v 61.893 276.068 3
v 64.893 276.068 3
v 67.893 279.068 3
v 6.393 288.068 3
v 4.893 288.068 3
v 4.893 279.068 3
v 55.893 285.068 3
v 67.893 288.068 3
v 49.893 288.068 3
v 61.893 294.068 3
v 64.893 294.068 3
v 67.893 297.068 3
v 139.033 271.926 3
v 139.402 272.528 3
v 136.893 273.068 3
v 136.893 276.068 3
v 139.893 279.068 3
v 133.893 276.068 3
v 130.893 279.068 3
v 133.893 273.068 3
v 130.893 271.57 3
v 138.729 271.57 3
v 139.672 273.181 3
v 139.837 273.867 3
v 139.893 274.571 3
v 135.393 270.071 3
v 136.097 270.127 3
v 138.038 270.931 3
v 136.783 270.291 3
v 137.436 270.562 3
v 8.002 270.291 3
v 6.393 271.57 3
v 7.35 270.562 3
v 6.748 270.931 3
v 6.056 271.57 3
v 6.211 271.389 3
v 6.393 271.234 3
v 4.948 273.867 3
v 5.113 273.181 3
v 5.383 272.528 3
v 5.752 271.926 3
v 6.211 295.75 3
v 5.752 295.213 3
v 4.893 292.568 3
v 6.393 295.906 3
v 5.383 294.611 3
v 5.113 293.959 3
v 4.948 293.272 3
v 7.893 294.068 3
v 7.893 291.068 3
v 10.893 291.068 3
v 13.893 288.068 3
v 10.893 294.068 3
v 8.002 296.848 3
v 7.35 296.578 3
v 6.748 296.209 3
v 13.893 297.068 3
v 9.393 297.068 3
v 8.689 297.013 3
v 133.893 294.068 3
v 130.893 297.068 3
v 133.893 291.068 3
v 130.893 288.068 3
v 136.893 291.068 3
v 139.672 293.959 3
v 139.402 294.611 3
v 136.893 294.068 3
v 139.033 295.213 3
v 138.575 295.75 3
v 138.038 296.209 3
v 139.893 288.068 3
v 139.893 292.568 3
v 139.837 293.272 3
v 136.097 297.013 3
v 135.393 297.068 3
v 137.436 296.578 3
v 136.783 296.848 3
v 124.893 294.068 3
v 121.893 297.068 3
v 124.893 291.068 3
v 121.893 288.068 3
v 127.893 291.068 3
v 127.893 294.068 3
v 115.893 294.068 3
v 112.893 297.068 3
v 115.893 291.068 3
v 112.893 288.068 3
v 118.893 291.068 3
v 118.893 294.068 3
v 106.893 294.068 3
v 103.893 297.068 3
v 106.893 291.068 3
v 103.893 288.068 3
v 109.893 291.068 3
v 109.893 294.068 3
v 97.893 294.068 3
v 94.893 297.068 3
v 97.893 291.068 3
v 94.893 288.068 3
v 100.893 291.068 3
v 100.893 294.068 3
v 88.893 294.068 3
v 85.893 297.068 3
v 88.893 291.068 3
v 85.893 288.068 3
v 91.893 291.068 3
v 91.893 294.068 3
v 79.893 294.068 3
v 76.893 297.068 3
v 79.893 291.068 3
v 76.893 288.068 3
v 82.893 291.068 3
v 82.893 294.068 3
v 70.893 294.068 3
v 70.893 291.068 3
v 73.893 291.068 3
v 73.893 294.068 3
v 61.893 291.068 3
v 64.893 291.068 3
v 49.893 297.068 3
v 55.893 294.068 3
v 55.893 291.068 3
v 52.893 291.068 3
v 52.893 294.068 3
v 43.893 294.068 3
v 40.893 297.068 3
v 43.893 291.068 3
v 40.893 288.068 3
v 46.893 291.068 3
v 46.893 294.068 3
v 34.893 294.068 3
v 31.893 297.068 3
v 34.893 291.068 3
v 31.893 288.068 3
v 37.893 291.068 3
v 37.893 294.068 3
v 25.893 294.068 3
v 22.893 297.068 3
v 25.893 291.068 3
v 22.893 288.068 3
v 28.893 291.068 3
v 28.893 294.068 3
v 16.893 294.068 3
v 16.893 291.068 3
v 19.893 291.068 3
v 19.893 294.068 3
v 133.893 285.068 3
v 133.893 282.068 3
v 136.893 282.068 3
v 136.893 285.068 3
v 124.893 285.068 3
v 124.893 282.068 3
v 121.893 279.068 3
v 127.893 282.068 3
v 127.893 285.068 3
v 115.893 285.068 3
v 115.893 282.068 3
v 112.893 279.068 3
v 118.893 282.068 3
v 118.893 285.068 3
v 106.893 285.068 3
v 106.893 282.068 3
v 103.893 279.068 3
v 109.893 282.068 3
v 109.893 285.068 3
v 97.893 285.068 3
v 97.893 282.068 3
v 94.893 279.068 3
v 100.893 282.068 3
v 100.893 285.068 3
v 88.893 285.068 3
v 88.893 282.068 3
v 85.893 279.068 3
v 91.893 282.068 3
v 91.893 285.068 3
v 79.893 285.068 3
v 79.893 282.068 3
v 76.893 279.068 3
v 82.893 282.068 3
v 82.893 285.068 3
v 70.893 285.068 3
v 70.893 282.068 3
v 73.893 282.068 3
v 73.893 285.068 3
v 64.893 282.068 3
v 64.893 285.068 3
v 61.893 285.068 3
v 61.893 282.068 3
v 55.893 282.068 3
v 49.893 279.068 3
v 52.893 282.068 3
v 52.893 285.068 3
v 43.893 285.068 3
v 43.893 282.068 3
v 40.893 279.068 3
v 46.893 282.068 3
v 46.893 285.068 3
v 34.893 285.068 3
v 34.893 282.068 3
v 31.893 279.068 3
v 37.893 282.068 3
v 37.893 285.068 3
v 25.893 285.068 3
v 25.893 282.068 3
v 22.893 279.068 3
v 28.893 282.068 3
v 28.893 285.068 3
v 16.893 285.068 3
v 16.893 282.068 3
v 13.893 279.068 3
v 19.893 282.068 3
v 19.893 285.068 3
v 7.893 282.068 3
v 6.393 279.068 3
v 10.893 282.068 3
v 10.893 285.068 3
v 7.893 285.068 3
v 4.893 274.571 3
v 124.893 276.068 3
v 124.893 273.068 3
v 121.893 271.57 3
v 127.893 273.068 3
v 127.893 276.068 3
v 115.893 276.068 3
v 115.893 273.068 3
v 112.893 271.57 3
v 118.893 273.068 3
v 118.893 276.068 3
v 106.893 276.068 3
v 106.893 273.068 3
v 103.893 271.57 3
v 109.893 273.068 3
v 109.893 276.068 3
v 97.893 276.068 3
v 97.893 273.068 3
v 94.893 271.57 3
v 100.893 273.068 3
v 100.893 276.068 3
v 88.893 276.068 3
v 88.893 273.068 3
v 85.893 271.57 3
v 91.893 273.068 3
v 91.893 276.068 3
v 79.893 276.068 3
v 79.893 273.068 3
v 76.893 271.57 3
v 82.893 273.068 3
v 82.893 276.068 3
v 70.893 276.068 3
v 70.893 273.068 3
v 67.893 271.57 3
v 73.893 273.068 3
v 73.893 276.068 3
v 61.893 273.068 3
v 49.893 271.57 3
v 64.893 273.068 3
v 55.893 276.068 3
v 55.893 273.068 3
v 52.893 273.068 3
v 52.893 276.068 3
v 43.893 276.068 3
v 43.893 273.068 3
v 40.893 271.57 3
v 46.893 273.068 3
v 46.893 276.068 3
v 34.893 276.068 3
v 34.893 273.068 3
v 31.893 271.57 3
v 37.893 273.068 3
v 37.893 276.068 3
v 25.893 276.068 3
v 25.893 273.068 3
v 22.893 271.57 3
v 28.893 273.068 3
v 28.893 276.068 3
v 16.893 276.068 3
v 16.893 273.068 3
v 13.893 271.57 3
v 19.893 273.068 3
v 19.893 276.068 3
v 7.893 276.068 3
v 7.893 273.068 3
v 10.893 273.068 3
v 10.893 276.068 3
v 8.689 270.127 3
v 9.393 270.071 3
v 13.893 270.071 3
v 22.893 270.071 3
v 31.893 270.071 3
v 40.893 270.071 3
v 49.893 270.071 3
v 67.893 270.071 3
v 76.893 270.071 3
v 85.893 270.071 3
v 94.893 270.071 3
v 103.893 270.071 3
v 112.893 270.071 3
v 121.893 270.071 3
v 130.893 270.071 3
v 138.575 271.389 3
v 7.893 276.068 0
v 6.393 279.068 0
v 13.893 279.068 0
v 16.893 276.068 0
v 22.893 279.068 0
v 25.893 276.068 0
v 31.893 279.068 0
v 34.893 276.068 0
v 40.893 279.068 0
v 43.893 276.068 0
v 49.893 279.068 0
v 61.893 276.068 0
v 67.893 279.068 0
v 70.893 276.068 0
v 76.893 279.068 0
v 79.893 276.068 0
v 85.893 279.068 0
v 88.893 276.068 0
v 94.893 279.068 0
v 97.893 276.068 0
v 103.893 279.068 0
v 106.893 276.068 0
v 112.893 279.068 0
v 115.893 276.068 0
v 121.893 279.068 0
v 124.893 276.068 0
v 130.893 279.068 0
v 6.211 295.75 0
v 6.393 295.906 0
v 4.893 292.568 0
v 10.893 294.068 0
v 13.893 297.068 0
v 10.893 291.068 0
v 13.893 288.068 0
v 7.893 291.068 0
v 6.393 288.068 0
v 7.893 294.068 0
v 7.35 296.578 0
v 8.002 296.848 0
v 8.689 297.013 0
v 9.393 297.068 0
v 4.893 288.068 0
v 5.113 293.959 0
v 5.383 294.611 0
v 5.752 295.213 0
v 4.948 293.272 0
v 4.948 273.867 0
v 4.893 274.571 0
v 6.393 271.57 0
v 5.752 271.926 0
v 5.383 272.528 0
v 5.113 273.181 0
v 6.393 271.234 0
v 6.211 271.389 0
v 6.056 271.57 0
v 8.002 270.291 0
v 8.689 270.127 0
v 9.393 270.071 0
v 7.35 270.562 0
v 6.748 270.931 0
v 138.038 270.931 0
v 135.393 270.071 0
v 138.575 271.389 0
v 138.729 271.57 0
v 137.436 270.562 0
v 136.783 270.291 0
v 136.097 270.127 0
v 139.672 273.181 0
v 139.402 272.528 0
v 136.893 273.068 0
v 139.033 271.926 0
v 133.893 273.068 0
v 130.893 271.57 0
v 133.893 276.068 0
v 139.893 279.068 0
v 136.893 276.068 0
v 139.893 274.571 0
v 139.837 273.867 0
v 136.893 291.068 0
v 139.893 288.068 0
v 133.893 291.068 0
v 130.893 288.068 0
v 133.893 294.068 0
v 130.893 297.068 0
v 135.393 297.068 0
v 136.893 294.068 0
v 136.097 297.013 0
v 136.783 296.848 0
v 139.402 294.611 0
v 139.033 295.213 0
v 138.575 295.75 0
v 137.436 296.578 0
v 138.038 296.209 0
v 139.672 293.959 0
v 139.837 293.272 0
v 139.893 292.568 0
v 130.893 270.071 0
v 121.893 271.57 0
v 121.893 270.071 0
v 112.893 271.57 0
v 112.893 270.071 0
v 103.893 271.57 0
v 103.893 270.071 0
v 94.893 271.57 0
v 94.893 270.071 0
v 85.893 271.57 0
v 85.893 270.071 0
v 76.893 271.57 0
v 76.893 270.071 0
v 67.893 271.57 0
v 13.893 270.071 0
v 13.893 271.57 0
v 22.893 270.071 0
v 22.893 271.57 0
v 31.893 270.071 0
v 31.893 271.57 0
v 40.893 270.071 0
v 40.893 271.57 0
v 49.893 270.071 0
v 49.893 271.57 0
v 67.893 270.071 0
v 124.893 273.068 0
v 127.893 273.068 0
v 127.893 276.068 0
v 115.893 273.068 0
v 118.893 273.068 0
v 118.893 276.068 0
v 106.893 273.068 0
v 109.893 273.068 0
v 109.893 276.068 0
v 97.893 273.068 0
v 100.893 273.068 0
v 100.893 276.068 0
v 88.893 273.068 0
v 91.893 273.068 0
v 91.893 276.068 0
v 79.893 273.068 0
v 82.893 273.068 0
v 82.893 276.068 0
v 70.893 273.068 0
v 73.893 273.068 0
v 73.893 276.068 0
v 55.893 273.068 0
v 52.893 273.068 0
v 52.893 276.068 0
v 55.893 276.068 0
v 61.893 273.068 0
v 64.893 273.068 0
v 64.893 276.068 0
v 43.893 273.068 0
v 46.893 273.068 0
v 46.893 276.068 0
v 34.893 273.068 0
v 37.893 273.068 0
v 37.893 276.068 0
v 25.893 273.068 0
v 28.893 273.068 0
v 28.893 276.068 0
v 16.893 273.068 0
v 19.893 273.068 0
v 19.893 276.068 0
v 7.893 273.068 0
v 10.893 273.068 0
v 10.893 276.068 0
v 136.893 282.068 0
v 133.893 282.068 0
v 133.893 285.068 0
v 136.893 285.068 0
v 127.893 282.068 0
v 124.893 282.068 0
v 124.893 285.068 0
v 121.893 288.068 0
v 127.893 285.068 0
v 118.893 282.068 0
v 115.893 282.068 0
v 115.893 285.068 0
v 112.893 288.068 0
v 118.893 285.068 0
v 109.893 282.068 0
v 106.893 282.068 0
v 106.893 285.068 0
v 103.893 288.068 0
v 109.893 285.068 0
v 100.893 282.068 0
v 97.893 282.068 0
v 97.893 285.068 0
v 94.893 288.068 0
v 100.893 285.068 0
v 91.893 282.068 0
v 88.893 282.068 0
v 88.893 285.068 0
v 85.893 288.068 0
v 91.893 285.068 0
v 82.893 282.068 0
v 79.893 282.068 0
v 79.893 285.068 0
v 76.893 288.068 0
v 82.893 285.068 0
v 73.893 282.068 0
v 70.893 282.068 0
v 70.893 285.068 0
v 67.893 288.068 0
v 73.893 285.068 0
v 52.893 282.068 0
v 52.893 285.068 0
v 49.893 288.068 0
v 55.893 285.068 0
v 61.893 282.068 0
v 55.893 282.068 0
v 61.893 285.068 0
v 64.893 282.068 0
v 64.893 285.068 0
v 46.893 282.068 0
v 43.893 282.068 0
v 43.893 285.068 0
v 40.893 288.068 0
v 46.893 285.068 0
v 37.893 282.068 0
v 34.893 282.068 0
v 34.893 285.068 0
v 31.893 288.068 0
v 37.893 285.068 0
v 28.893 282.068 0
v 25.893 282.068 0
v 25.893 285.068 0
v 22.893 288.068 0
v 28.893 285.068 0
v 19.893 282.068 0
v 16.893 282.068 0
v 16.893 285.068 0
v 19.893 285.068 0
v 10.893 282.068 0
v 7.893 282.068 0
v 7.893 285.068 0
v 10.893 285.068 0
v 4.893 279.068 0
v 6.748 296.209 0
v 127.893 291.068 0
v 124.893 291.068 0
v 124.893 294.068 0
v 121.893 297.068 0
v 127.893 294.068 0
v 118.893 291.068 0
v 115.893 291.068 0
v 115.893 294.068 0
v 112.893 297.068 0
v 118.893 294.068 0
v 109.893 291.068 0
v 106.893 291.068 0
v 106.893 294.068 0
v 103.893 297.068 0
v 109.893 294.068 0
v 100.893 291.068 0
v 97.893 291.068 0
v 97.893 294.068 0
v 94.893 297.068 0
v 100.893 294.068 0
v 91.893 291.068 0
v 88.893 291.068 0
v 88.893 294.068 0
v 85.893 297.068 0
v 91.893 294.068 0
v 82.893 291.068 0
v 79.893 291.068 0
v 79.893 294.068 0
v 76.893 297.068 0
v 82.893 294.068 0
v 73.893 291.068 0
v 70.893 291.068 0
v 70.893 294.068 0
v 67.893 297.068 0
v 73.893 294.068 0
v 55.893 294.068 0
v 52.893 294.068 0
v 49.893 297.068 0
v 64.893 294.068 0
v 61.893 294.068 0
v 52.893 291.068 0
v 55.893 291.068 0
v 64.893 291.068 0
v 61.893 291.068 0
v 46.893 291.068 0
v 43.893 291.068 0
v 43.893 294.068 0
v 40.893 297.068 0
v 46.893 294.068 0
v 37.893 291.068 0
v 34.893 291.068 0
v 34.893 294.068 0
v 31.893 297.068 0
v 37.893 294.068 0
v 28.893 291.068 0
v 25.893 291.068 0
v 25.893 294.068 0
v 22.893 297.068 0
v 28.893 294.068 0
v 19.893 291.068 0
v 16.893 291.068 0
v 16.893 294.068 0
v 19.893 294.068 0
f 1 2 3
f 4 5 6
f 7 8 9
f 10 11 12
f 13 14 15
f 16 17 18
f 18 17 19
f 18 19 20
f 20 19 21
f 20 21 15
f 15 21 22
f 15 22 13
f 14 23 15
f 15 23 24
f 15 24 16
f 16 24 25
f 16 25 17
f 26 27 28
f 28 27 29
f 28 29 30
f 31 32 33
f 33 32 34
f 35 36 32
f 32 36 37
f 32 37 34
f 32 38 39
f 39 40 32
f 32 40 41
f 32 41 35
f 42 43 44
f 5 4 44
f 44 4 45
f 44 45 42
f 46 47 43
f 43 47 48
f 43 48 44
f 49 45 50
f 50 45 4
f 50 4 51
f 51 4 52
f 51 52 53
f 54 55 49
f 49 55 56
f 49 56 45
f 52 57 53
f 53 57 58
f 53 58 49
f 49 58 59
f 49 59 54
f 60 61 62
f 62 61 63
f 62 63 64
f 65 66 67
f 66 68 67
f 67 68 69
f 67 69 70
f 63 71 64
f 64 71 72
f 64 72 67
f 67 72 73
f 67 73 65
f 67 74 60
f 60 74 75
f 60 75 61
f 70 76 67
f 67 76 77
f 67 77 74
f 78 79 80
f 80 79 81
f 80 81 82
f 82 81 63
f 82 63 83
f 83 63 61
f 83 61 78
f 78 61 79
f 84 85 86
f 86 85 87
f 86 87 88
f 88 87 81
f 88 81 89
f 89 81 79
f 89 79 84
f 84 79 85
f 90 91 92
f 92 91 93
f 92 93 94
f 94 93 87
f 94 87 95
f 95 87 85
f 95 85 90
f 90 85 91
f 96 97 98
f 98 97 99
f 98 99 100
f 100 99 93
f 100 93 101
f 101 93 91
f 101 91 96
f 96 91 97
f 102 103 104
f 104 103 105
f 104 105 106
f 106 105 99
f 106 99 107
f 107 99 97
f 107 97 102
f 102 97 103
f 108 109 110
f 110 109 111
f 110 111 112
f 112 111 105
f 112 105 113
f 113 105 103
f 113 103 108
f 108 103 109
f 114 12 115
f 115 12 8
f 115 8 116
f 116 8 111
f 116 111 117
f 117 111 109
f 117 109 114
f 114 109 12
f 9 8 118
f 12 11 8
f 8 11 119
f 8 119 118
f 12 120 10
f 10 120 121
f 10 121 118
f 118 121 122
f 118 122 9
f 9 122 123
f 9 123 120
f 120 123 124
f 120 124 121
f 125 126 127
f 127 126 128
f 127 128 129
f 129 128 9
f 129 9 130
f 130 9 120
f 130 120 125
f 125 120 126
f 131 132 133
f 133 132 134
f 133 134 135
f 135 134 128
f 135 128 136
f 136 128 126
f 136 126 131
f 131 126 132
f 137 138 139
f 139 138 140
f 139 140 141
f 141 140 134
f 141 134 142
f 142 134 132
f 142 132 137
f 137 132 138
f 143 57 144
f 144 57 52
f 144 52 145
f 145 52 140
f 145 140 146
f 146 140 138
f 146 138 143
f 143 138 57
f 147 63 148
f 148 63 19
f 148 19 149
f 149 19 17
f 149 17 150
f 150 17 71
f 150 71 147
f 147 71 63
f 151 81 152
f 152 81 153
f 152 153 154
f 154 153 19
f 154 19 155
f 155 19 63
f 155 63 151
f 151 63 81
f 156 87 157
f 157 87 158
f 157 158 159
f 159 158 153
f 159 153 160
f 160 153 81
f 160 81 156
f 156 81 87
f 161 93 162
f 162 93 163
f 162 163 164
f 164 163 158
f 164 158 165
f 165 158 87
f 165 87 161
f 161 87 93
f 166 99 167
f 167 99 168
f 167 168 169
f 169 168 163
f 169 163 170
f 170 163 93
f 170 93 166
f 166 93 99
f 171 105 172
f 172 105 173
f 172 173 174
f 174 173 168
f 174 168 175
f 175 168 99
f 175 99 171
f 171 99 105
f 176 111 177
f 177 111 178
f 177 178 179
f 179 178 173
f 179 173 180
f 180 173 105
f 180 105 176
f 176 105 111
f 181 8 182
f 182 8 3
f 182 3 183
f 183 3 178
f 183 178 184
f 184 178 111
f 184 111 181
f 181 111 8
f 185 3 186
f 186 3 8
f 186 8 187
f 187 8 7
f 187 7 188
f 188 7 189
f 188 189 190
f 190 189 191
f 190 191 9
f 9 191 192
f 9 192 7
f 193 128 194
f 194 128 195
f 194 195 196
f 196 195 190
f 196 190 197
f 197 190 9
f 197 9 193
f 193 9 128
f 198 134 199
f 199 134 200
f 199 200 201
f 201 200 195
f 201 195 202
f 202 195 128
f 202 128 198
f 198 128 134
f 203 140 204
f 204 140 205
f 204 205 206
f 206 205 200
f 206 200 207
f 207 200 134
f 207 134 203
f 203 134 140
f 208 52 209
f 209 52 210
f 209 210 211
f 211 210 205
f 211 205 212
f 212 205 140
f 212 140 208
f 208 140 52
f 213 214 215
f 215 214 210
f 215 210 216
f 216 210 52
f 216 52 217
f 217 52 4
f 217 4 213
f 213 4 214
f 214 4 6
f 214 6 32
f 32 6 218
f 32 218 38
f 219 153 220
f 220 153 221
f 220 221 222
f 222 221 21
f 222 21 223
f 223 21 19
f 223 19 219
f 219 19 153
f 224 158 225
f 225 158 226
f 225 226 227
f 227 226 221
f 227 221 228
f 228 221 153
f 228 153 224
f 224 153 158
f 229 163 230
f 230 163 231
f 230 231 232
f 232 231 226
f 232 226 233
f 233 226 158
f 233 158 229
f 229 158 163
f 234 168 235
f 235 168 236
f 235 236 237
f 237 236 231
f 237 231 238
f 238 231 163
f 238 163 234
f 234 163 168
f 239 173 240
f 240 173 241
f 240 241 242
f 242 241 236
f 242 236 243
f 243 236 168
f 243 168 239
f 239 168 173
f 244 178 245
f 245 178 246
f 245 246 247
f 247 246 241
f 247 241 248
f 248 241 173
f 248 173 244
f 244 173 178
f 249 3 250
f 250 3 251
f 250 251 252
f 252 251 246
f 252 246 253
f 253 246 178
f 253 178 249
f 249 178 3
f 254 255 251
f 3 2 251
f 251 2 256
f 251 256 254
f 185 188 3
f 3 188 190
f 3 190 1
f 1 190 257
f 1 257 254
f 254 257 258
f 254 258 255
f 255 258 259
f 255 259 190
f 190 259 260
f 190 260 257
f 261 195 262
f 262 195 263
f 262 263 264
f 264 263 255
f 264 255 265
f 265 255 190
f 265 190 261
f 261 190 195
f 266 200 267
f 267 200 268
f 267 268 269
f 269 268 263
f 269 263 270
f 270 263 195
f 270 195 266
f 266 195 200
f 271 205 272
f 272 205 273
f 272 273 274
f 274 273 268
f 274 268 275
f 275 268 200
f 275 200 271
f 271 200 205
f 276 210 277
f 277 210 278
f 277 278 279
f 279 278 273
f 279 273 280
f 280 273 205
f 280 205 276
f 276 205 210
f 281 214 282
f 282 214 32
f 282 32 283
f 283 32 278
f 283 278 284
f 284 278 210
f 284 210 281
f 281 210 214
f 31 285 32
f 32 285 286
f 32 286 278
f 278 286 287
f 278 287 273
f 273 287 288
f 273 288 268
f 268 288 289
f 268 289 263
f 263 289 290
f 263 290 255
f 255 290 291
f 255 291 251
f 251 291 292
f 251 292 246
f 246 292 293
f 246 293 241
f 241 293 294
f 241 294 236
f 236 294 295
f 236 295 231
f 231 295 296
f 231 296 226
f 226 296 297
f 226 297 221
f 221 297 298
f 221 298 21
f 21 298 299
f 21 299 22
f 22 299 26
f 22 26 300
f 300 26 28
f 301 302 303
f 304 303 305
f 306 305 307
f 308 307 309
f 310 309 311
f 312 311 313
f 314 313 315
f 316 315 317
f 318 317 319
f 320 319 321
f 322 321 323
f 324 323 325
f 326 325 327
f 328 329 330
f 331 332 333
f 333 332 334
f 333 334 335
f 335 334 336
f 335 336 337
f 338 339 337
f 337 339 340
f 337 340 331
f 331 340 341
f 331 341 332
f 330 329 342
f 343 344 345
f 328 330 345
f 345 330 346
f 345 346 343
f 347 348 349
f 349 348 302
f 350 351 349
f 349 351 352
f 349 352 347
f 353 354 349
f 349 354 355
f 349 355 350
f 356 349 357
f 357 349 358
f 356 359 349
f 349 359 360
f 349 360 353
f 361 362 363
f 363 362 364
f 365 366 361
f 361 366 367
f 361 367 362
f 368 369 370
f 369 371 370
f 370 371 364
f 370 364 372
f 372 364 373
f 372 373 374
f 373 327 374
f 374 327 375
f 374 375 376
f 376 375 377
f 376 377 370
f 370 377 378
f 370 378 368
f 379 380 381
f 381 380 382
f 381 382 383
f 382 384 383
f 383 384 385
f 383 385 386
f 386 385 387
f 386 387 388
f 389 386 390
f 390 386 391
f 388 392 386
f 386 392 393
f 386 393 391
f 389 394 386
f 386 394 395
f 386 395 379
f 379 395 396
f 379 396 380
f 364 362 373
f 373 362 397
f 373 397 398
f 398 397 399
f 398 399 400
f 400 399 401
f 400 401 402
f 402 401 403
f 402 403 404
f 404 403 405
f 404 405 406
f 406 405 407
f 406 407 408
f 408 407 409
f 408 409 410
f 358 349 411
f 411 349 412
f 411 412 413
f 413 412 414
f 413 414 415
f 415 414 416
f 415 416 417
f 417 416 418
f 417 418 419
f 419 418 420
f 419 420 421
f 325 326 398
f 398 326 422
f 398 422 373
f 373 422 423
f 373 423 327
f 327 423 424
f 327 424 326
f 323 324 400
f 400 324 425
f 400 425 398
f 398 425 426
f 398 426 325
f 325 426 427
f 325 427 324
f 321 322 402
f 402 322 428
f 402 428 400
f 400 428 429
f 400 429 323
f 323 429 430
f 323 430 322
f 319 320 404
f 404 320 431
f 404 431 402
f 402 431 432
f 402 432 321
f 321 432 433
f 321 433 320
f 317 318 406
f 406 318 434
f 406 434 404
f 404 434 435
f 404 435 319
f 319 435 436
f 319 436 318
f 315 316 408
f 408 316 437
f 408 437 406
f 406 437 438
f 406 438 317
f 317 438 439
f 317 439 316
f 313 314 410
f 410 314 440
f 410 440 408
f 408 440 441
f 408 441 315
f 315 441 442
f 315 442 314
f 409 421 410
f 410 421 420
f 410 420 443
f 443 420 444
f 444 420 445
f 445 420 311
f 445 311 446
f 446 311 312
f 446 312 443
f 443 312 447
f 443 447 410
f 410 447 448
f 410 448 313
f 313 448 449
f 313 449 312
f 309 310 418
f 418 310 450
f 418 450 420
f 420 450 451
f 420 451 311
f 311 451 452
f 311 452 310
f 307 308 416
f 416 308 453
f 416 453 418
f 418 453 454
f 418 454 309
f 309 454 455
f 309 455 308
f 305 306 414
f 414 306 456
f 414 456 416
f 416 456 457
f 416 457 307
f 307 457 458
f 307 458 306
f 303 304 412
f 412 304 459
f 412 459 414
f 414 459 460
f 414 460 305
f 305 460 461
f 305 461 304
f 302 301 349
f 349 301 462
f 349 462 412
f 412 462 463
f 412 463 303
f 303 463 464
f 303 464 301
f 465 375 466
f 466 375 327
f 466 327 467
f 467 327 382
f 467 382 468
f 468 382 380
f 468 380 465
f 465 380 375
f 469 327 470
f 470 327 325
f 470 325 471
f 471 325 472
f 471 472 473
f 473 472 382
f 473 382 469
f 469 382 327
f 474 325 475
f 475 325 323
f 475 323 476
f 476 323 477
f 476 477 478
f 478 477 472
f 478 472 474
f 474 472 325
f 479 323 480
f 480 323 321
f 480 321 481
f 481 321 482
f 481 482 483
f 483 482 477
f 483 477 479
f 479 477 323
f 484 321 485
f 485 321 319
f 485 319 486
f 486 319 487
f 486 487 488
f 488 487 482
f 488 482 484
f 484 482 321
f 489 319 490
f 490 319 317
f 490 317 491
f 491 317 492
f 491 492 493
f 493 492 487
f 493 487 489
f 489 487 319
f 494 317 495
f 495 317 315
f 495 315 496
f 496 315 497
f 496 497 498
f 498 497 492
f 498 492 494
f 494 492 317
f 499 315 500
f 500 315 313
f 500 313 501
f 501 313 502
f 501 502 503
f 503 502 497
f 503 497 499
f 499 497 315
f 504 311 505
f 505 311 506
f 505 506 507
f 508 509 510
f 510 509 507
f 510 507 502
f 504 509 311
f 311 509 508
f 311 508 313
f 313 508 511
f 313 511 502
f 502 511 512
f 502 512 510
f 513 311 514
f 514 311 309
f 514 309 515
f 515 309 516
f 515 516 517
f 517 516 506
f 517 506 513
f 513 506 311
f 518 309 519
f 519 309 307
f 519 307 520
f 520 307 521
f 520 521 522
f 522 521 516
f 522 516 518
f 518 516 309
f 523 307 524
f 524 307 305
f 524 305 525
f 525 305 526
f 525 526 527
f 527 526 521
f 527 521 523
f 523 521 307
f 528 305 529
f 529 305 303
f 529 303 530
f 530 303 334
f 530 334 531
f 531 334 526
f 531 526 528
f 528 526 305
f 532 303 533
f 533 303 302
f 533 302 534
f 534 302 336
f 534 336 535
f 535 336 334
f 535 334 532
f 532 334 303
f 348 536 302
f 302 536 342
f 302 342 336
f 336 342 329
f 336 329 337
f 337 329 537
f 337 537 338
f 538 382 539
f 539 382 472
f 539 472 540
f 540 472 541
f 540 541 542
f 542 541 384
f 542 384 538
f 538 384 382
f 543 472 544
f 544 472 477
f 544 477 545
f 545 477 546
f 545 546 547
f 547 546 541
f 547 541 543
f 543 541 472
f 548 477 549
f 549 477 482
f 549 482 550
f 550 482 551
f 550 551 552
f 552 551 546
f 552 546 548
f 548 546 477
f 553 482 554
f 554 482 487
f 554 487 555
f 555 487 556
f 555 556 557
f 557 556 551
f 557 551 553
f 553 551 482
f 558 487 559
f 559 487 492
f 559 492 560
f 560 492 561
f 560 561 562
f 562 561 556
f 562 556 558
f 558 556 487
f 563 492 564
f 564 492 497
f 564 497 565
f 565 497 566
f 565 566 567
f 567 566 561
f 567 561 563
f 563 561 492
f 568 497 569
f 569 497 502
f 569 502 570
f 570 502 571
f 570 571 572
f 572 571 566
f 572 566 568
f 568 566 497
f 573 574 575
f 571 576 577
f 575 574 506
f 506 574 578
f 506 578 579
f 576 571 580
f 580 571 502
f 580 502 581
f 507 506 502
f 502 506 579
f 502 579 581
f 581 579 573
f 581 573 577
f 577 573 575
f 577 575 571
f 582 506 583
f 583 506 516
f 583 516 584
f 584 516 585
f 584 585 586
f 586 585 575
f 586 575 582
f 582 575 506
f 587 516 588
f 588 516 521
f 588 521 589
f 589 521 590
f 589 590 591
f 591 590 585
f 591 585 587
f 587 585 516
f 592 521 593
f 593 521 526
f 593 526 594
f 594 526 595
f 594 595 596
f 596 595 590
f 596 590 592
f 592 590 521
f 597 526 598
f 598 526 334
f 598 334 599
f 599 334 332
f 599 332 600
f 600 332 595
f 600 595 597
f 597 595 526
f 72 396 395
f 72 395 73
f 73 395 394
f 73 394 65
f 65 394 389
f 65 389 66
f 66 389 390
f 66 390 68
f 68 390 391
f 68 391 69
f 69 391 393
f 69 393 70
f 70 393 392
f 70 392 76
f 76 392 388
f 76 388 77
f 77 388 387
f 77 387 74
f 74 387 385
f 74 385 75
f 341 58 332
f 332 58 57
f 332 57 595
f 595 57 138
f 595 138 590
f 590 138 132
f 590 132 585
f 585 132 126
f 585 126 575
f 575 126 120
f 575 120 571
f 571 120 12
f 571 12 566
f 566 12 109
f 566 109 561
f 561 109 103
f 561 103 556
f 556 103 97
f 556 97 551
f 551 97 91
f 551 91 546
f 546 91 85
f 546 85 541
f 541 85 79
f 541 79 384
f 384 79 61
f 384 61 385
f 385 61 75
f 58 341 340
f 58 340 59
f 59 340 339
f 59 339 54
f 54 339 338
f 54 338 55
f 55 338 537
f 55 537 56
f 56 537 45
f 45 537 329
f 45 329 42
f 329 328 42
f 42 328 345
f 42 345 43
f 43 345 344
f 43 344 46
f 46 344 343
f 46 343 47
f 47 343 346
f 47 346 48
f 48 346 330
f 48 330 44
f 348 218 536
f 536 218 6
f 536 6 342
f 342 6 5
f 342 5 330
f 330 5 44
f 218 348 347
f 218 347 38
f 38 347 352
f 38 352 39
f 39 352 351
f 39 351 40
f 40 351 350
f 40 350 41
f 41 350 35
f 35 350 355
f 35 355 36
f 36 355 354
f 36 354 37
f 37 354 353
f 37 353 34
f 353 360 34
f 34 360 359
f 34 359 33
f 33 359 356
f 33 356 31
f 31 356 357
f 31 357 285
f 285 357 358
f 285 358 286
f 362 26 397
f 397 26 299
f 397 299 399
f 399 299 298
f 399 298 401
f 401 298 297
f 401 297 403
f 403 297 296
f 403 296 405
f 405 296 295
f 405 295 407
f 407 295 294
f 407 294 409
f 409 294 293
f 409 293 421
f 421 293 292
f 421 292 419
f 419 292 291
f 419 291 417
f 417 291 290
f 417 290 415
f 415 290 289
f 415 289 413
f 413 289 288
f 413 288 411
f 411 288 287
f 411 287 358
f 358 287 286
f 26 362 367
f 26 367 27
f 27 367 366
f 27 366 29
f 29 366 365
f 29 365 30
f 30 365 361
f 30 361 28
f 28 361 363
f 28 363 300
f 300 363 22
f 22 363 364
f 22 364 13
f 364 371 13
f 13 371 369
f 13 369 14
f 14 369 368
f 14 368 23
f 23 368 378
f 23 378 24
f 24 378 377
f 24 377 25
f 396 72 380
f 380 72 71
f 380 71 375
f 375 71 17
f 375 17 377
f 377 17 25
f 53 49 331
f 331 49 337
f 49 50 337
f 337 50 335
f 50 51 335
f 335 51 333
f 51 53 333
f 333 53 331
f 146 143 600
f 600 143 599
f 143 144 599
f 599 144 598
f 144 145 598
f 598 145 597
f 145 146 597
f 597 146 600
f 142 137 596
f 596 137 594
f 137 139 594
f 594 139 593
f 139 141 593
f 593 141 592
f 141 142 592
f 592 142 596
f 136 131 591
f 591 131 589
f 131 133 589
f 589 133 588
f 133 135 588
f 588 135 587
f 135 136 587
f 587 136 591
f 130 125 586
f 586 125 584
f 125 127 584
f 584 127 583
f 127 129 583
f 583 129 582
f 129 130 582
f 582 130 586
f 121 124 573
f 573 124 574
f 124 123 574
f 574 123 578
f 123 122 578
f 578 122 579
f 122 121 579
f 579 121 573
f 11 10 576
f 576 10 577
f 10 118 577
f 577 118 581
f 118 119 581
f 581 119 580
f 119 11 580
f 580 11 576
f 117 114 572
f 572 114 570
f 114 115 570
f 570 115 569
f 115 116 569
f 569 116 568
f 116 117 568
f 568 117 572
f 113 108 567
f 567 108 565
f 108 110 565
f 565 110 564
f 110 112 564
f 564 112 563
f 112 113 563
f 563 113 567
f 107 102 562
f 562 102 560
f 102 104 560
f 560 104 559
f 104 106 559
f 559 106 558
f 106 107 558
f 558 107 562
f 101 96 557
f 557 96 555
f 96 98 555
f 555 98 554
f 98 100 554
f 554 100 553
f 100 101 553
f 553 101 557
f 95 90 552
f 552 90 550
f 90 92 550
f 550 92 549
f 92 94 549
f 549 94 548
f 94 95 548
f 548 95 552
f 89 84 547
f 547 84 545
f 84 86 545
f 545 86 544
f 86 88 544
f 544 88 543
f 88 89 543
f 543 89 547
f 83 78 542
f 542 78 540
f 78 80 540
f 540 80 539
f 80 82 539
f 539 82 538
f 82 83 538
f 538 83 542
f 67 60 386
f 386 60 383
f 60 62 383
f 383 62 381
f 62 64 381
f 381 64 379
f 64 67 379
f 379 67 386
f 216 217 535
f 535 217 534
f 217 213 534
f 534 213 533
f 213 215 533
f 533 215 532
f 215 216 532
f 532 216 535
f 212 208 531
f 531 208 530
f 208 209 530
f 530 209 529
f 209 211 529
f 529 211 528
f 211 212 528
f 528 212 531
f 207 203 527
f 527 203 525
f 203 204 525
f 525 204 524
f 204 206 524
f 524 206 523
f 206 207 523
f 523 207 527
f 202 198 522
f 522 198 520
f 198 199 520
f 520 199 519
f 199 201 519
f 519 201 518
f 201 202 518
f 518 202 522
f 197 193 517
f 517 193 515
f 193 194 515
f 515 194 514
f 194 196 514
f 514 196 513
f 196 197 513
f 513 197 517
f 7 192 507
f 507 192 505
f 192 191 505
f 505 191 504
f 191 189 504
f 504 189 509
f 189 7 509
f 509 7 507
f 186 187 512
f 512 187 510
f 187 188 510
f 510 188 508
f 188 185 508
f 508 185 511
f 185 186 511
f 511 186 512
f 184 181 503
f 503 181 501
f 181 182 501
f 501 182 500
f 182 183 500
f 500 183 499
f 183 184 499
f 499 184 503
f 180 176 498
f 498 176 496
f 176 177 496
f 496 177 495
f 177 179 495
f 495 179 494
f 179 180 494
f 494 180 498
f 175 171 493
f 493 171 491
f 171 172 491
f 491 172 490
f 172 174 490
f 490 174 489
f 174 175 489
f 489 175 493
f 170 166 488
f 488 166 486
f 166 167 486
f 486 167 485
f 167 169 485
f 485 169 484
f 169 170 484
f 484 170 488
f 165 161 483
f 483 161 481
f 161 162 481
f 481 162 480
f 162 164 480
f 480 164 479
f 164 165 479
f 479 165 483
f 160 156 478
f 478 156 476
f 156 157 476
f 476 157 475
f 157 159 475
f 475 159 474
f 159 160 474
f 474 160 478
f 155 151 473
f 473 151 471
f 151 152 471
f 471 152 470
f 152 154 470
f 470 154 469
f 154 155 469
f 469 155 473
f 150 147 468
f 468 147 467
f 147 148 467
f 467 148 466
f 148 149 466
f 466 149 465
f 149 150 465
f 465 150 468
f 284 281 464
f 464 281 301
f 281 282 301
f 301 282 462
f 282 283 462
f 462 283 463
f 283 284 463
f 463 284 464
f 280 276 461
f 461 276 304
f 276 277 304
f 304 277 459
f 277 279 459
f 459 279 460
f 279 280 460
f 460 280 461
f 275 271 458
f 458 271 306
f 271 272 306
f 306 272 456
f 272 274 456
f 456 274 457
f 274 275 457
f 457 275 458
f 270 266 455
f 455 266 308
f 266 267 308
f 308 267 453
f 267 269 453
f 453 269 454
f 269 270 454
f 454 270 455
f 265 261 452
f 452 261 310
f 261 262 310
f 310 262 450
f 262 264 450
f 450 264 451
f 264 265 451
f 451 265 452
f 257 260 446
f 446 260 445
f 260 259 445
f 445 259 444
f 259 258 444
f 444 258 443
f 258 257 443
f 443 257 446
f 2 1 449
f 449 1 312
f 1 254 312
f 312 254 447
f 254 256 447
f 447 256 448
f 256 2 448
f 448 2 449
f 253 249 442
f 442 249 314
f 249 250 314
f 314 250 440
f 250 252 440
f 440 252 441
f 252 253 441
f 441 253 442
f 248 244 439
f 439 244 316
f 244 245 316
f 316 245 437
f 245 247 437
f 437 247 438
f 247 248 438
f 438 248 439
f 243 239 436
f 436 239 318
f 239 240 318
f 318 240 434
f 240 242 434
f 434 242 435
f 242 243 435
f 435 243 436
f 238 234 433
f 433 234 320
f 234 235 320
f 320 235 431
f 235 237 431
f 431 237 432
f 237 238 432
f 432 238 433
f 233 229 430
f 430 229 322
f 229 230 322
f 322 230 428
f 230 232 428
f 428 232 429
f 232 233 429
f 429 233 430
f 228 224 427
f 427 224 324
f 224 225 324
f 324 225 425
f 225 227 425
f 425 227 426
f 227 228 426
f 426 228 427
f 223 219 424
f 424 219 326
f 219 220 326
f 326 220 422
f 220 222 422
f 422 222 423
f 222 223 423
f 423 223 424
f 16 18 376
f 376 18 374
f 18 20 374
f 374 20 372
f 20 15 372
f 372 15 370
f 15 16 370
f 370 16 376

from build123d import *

# Parameters (mm, degrees)
MODEL_W                 = 3
MODEL_H                 = 3
SALIENTE_EXTRUIR1_DEPTH = 3


with BuildPart() as part:
    # Model → Saliente-Extruir1 (new body)
    with BuildSketch(Plane.XY):
        with BuildLine():
            Line((139.892723231, 274.571078663), (139.892723231, 292.568350817))
            ThreePointArc((139.892723231, 292.568350817), (138.574703747, 295.750331332), (135.392723231, 297.068350817))
            Line((135.392723231, 297.068350817), (9.392723231, 297.068350817))
            ThreePointArc((9.392723231, 297.068350817), (6.210742716, 295.750331332), (4.892723231, 292.568350817))
            Line((4.892723231, 292.568350817), (4.892723231, 274.571078663))
            ThreePointArc((4.892723231, 274.571078663), (6.210742716, 271.389098148), (9.392723231, 270.071078663))
            Line((9.392723231, 270.071078663), (135.392723231, 270.071078663))
            ThreePointArc((135.392723231, 270.071078663), (138.574703747, 271.389098148), (139.892723231, 274.571078663))
        make_face()
        with Locations((9.392723231, 292.568350816)):
            Rectangle(MODEL_W, MODEL_H, mode=Mode.SUBTRACT)
        with Locations((18.392723231, 292.568350816)):
            Rectangle(MODEL_W, MODEL_H, mode=Mode.SUBTRACT)
        with Locations((27.392723231, 292.568350816)):
            Rectangle(MODEL_W, MODEL_H, mode=Mode.SUBTRACT)
        with Locations((36.392723231, 292.568350816)):
            Rectangle(MODEL_W, MODEL_H, mode=Mode.SUBTRACT)
        with Locations((45.392723231, 292.568350816)):
            Rectangle(MODEL_W, MODEL_H, mode=Mode.SUBTRACT)
        with Locations((54.392723231, 292.568350816)):
            Rectangle(MODEL_W, MODEL_H, mode=Mode.SUBTRACT)
        with Locations((63.392723231, 292.568350816)):
            Rectangle(MODEL_W, MODEL_H, mode=Mode.SUBTRACT)
        with Locations((72.392723231, 292.568350816)):
            Rectangle(MODEL_W, MODEL_H, mode=Mode.SUBTRACT)
        with Locations((81.392723231, 292.568350816)):
            Rectangle(MODEL_W, MODEL_H, mode=Mode.SUBTRACT)
        with Locations((90.392723231, 292.568350816)):
            Rectangle(MODEL_W, MODEL_H, mode=Mode.SUBTRACT)
        with Locations((99.392723231, 292.568350816)):
            Rectangle(MODEL_W, MODEL_H, mode=Mode.SUBTRACT)
        with Locations((108.392723231, 292.568350816)):
            Rectangle(MODEL_W, MODEL_H, mode=Mode.SUBTRACT)
        with Locations((117.392723231, 292.568350816)):
            Rectangle(MODEL_W, MODEL_H, mode=Mode.SUBTRACT)
        with Locations((126.392723231, 292.568350816)):
            Rectangle(MODEL_W, MODEL_H, mode=Mode.SUBTRACT)
        with Locations((135.392723231, 292.568350816)):
            Rectangle(MODEL_W, MODEL_H, mode=Mode.SUBTRACT)
        with Locations((9.392723231, 283.568350816)):
            Rectangle(MODEL_W, MODEL_H, mode=Mode.SUBTRACT)
        with Locations((18.392723231, 283.568350816)):
            Rectangle(MODEL_W, MODEL_H, mode=Mode.SUBTRACT)
        with Locations((27.392723231, 283.568350816)):
            Rectangle(MODEL_W, MODEL_H, mode=Mode.SUBTRACT)
        with Locations((36.392723231, 283.568350816)):
            Rectangle(MODEL_W, MODEL_H, mode=Mode.SUBTRACT)
        with Locations((45.392723231, 283.568350816)):
            Rectangle(MODEL_W, MODEL_H, mode=Mode.SUBTRACT)
        with Locations((54.392723231, 283.568350816)):
            Rectangle(MODEL_W, MODEL_H, mode=Mode.SUBTRACT)
        with Locations((63.392723231, 283.568350816)):
            Rectangle(MODEL_W, MODEL_H, mode=Mode.SUBTRACT)
        with Locations((72.392723231, 283.568350816)):
            Rectangle(MODEL_W, MODEL_H, mode=Mode.SUBTRACT)
        with Locations((81.392723231, 283.568350816)):
            Rectangle(MODEL_W, MODEL_H, mode=Mode.SUBTRACT)
        with Locations((90.392723231, 283.568350816)):
            Rectangle(MODEL_W, MODEL_H, mode=Mode.SUBTRACT)
        with Locations((99.392723231, 283.568350816)):
            Rectangle(MODEL_W, MODEL_H, mode=Mode.SUBTRACT)
        with Locations((108.392723231, 283.568350816)):
            Rectangle(MODEL_W, MODEL_H, mode=Mode.SUBTRACT)
        with Locations((117.392723231, 283.568350816)):
            Rectangle(MODEL_W, MODEL_H, mode=Mode.SUBTRACT)
        with Locations((126.392723231, 283.568350816)):
            Rectangle(MODEL_W, MODEL_H, mode=Mode.SUBTRACT)
        with Locations((135.392723231, 283.568350816)):
            Rectangle(MODEL_W, MODEL_H, mode=Mode.SUBTRACT)
        with Locations((9.392723231, 274.568350816)):
            Rectangle(MODEL_W, MODEL_H, mode=Mode.SUBTRACT)
        with Locations((18.392723231, 274.568350816)):
            Rectangle(MODEL_W, MODEL_H, mode=Mode.SUBTRACT)
        with Locations((27.392723231, 274.568350816)):
            Rectangle(MODEL_W, MODEL_H, mode=Mode.SUBTRACT)
        with Locations((36.392723231, 274.568350816)):
            Rectangle(MODEL_W, MODEL_H, mode=Mode.SUBTRACT)
        with Locations((45.392723231, 274.568350816)):
            Rectangle(MODEL_W, MODEL_H, mode=Mode.SUBTRACT)
        with Locations((54.392723231, 274.568350816)):
            Rectangle(MODEL_W, MODEL_H, mode=Mode.SUBTRACT)
        with Locations((63.392723231, 274.568350816)):
            Rectangle(MODEL_W, MODEL_H, mode=Mode.SUBTRACT)
        with Locations((72.392723231, 274.568350816)):
            Rectangle(MODEL_W, MODEL_H, mode=Mode.SUBTRACT)
        with Locations((81.392723231, 274.568350816)):
            Rectangle(MODEL_W, MODEL_H, mode=Mode.SUBTRACT)
        with Locations((90.392723231, 274.568350816)):
            Rectangle(MODEL_W, MODEL_H, mode=Mode.SUBTRACT)
        with Locations((99.392723231, 274.568350816)):
            Rectangle(MODEL_W, MODEL_H, mode=Mode.SUBTRACT)
        with Locations((108.392723231, 274.568350816)):
            Rectangle(MODEL_W, MODEL_H, mode=Mode.SUBTRACT)
        with Locations((117.392723231, 274.568350816)):
            Rectangle(MODEL_W, MODEL_H, mode=Mode.SUBTRACT)
        with Locations((126.392723231, 274.568350816)):
            Rectangle(MODEL_W, MODEL_H, mode=Mode.SUBTRACT)
        with Locations((135.392723231, 274.568350816)):
            Rectangle(MODEL_W, MODEL_H, mode=Mode.SUBTRACT)
    extrude(amount=SALIENTE_EXTRUIR1_DEPTH)


solid = part.part
